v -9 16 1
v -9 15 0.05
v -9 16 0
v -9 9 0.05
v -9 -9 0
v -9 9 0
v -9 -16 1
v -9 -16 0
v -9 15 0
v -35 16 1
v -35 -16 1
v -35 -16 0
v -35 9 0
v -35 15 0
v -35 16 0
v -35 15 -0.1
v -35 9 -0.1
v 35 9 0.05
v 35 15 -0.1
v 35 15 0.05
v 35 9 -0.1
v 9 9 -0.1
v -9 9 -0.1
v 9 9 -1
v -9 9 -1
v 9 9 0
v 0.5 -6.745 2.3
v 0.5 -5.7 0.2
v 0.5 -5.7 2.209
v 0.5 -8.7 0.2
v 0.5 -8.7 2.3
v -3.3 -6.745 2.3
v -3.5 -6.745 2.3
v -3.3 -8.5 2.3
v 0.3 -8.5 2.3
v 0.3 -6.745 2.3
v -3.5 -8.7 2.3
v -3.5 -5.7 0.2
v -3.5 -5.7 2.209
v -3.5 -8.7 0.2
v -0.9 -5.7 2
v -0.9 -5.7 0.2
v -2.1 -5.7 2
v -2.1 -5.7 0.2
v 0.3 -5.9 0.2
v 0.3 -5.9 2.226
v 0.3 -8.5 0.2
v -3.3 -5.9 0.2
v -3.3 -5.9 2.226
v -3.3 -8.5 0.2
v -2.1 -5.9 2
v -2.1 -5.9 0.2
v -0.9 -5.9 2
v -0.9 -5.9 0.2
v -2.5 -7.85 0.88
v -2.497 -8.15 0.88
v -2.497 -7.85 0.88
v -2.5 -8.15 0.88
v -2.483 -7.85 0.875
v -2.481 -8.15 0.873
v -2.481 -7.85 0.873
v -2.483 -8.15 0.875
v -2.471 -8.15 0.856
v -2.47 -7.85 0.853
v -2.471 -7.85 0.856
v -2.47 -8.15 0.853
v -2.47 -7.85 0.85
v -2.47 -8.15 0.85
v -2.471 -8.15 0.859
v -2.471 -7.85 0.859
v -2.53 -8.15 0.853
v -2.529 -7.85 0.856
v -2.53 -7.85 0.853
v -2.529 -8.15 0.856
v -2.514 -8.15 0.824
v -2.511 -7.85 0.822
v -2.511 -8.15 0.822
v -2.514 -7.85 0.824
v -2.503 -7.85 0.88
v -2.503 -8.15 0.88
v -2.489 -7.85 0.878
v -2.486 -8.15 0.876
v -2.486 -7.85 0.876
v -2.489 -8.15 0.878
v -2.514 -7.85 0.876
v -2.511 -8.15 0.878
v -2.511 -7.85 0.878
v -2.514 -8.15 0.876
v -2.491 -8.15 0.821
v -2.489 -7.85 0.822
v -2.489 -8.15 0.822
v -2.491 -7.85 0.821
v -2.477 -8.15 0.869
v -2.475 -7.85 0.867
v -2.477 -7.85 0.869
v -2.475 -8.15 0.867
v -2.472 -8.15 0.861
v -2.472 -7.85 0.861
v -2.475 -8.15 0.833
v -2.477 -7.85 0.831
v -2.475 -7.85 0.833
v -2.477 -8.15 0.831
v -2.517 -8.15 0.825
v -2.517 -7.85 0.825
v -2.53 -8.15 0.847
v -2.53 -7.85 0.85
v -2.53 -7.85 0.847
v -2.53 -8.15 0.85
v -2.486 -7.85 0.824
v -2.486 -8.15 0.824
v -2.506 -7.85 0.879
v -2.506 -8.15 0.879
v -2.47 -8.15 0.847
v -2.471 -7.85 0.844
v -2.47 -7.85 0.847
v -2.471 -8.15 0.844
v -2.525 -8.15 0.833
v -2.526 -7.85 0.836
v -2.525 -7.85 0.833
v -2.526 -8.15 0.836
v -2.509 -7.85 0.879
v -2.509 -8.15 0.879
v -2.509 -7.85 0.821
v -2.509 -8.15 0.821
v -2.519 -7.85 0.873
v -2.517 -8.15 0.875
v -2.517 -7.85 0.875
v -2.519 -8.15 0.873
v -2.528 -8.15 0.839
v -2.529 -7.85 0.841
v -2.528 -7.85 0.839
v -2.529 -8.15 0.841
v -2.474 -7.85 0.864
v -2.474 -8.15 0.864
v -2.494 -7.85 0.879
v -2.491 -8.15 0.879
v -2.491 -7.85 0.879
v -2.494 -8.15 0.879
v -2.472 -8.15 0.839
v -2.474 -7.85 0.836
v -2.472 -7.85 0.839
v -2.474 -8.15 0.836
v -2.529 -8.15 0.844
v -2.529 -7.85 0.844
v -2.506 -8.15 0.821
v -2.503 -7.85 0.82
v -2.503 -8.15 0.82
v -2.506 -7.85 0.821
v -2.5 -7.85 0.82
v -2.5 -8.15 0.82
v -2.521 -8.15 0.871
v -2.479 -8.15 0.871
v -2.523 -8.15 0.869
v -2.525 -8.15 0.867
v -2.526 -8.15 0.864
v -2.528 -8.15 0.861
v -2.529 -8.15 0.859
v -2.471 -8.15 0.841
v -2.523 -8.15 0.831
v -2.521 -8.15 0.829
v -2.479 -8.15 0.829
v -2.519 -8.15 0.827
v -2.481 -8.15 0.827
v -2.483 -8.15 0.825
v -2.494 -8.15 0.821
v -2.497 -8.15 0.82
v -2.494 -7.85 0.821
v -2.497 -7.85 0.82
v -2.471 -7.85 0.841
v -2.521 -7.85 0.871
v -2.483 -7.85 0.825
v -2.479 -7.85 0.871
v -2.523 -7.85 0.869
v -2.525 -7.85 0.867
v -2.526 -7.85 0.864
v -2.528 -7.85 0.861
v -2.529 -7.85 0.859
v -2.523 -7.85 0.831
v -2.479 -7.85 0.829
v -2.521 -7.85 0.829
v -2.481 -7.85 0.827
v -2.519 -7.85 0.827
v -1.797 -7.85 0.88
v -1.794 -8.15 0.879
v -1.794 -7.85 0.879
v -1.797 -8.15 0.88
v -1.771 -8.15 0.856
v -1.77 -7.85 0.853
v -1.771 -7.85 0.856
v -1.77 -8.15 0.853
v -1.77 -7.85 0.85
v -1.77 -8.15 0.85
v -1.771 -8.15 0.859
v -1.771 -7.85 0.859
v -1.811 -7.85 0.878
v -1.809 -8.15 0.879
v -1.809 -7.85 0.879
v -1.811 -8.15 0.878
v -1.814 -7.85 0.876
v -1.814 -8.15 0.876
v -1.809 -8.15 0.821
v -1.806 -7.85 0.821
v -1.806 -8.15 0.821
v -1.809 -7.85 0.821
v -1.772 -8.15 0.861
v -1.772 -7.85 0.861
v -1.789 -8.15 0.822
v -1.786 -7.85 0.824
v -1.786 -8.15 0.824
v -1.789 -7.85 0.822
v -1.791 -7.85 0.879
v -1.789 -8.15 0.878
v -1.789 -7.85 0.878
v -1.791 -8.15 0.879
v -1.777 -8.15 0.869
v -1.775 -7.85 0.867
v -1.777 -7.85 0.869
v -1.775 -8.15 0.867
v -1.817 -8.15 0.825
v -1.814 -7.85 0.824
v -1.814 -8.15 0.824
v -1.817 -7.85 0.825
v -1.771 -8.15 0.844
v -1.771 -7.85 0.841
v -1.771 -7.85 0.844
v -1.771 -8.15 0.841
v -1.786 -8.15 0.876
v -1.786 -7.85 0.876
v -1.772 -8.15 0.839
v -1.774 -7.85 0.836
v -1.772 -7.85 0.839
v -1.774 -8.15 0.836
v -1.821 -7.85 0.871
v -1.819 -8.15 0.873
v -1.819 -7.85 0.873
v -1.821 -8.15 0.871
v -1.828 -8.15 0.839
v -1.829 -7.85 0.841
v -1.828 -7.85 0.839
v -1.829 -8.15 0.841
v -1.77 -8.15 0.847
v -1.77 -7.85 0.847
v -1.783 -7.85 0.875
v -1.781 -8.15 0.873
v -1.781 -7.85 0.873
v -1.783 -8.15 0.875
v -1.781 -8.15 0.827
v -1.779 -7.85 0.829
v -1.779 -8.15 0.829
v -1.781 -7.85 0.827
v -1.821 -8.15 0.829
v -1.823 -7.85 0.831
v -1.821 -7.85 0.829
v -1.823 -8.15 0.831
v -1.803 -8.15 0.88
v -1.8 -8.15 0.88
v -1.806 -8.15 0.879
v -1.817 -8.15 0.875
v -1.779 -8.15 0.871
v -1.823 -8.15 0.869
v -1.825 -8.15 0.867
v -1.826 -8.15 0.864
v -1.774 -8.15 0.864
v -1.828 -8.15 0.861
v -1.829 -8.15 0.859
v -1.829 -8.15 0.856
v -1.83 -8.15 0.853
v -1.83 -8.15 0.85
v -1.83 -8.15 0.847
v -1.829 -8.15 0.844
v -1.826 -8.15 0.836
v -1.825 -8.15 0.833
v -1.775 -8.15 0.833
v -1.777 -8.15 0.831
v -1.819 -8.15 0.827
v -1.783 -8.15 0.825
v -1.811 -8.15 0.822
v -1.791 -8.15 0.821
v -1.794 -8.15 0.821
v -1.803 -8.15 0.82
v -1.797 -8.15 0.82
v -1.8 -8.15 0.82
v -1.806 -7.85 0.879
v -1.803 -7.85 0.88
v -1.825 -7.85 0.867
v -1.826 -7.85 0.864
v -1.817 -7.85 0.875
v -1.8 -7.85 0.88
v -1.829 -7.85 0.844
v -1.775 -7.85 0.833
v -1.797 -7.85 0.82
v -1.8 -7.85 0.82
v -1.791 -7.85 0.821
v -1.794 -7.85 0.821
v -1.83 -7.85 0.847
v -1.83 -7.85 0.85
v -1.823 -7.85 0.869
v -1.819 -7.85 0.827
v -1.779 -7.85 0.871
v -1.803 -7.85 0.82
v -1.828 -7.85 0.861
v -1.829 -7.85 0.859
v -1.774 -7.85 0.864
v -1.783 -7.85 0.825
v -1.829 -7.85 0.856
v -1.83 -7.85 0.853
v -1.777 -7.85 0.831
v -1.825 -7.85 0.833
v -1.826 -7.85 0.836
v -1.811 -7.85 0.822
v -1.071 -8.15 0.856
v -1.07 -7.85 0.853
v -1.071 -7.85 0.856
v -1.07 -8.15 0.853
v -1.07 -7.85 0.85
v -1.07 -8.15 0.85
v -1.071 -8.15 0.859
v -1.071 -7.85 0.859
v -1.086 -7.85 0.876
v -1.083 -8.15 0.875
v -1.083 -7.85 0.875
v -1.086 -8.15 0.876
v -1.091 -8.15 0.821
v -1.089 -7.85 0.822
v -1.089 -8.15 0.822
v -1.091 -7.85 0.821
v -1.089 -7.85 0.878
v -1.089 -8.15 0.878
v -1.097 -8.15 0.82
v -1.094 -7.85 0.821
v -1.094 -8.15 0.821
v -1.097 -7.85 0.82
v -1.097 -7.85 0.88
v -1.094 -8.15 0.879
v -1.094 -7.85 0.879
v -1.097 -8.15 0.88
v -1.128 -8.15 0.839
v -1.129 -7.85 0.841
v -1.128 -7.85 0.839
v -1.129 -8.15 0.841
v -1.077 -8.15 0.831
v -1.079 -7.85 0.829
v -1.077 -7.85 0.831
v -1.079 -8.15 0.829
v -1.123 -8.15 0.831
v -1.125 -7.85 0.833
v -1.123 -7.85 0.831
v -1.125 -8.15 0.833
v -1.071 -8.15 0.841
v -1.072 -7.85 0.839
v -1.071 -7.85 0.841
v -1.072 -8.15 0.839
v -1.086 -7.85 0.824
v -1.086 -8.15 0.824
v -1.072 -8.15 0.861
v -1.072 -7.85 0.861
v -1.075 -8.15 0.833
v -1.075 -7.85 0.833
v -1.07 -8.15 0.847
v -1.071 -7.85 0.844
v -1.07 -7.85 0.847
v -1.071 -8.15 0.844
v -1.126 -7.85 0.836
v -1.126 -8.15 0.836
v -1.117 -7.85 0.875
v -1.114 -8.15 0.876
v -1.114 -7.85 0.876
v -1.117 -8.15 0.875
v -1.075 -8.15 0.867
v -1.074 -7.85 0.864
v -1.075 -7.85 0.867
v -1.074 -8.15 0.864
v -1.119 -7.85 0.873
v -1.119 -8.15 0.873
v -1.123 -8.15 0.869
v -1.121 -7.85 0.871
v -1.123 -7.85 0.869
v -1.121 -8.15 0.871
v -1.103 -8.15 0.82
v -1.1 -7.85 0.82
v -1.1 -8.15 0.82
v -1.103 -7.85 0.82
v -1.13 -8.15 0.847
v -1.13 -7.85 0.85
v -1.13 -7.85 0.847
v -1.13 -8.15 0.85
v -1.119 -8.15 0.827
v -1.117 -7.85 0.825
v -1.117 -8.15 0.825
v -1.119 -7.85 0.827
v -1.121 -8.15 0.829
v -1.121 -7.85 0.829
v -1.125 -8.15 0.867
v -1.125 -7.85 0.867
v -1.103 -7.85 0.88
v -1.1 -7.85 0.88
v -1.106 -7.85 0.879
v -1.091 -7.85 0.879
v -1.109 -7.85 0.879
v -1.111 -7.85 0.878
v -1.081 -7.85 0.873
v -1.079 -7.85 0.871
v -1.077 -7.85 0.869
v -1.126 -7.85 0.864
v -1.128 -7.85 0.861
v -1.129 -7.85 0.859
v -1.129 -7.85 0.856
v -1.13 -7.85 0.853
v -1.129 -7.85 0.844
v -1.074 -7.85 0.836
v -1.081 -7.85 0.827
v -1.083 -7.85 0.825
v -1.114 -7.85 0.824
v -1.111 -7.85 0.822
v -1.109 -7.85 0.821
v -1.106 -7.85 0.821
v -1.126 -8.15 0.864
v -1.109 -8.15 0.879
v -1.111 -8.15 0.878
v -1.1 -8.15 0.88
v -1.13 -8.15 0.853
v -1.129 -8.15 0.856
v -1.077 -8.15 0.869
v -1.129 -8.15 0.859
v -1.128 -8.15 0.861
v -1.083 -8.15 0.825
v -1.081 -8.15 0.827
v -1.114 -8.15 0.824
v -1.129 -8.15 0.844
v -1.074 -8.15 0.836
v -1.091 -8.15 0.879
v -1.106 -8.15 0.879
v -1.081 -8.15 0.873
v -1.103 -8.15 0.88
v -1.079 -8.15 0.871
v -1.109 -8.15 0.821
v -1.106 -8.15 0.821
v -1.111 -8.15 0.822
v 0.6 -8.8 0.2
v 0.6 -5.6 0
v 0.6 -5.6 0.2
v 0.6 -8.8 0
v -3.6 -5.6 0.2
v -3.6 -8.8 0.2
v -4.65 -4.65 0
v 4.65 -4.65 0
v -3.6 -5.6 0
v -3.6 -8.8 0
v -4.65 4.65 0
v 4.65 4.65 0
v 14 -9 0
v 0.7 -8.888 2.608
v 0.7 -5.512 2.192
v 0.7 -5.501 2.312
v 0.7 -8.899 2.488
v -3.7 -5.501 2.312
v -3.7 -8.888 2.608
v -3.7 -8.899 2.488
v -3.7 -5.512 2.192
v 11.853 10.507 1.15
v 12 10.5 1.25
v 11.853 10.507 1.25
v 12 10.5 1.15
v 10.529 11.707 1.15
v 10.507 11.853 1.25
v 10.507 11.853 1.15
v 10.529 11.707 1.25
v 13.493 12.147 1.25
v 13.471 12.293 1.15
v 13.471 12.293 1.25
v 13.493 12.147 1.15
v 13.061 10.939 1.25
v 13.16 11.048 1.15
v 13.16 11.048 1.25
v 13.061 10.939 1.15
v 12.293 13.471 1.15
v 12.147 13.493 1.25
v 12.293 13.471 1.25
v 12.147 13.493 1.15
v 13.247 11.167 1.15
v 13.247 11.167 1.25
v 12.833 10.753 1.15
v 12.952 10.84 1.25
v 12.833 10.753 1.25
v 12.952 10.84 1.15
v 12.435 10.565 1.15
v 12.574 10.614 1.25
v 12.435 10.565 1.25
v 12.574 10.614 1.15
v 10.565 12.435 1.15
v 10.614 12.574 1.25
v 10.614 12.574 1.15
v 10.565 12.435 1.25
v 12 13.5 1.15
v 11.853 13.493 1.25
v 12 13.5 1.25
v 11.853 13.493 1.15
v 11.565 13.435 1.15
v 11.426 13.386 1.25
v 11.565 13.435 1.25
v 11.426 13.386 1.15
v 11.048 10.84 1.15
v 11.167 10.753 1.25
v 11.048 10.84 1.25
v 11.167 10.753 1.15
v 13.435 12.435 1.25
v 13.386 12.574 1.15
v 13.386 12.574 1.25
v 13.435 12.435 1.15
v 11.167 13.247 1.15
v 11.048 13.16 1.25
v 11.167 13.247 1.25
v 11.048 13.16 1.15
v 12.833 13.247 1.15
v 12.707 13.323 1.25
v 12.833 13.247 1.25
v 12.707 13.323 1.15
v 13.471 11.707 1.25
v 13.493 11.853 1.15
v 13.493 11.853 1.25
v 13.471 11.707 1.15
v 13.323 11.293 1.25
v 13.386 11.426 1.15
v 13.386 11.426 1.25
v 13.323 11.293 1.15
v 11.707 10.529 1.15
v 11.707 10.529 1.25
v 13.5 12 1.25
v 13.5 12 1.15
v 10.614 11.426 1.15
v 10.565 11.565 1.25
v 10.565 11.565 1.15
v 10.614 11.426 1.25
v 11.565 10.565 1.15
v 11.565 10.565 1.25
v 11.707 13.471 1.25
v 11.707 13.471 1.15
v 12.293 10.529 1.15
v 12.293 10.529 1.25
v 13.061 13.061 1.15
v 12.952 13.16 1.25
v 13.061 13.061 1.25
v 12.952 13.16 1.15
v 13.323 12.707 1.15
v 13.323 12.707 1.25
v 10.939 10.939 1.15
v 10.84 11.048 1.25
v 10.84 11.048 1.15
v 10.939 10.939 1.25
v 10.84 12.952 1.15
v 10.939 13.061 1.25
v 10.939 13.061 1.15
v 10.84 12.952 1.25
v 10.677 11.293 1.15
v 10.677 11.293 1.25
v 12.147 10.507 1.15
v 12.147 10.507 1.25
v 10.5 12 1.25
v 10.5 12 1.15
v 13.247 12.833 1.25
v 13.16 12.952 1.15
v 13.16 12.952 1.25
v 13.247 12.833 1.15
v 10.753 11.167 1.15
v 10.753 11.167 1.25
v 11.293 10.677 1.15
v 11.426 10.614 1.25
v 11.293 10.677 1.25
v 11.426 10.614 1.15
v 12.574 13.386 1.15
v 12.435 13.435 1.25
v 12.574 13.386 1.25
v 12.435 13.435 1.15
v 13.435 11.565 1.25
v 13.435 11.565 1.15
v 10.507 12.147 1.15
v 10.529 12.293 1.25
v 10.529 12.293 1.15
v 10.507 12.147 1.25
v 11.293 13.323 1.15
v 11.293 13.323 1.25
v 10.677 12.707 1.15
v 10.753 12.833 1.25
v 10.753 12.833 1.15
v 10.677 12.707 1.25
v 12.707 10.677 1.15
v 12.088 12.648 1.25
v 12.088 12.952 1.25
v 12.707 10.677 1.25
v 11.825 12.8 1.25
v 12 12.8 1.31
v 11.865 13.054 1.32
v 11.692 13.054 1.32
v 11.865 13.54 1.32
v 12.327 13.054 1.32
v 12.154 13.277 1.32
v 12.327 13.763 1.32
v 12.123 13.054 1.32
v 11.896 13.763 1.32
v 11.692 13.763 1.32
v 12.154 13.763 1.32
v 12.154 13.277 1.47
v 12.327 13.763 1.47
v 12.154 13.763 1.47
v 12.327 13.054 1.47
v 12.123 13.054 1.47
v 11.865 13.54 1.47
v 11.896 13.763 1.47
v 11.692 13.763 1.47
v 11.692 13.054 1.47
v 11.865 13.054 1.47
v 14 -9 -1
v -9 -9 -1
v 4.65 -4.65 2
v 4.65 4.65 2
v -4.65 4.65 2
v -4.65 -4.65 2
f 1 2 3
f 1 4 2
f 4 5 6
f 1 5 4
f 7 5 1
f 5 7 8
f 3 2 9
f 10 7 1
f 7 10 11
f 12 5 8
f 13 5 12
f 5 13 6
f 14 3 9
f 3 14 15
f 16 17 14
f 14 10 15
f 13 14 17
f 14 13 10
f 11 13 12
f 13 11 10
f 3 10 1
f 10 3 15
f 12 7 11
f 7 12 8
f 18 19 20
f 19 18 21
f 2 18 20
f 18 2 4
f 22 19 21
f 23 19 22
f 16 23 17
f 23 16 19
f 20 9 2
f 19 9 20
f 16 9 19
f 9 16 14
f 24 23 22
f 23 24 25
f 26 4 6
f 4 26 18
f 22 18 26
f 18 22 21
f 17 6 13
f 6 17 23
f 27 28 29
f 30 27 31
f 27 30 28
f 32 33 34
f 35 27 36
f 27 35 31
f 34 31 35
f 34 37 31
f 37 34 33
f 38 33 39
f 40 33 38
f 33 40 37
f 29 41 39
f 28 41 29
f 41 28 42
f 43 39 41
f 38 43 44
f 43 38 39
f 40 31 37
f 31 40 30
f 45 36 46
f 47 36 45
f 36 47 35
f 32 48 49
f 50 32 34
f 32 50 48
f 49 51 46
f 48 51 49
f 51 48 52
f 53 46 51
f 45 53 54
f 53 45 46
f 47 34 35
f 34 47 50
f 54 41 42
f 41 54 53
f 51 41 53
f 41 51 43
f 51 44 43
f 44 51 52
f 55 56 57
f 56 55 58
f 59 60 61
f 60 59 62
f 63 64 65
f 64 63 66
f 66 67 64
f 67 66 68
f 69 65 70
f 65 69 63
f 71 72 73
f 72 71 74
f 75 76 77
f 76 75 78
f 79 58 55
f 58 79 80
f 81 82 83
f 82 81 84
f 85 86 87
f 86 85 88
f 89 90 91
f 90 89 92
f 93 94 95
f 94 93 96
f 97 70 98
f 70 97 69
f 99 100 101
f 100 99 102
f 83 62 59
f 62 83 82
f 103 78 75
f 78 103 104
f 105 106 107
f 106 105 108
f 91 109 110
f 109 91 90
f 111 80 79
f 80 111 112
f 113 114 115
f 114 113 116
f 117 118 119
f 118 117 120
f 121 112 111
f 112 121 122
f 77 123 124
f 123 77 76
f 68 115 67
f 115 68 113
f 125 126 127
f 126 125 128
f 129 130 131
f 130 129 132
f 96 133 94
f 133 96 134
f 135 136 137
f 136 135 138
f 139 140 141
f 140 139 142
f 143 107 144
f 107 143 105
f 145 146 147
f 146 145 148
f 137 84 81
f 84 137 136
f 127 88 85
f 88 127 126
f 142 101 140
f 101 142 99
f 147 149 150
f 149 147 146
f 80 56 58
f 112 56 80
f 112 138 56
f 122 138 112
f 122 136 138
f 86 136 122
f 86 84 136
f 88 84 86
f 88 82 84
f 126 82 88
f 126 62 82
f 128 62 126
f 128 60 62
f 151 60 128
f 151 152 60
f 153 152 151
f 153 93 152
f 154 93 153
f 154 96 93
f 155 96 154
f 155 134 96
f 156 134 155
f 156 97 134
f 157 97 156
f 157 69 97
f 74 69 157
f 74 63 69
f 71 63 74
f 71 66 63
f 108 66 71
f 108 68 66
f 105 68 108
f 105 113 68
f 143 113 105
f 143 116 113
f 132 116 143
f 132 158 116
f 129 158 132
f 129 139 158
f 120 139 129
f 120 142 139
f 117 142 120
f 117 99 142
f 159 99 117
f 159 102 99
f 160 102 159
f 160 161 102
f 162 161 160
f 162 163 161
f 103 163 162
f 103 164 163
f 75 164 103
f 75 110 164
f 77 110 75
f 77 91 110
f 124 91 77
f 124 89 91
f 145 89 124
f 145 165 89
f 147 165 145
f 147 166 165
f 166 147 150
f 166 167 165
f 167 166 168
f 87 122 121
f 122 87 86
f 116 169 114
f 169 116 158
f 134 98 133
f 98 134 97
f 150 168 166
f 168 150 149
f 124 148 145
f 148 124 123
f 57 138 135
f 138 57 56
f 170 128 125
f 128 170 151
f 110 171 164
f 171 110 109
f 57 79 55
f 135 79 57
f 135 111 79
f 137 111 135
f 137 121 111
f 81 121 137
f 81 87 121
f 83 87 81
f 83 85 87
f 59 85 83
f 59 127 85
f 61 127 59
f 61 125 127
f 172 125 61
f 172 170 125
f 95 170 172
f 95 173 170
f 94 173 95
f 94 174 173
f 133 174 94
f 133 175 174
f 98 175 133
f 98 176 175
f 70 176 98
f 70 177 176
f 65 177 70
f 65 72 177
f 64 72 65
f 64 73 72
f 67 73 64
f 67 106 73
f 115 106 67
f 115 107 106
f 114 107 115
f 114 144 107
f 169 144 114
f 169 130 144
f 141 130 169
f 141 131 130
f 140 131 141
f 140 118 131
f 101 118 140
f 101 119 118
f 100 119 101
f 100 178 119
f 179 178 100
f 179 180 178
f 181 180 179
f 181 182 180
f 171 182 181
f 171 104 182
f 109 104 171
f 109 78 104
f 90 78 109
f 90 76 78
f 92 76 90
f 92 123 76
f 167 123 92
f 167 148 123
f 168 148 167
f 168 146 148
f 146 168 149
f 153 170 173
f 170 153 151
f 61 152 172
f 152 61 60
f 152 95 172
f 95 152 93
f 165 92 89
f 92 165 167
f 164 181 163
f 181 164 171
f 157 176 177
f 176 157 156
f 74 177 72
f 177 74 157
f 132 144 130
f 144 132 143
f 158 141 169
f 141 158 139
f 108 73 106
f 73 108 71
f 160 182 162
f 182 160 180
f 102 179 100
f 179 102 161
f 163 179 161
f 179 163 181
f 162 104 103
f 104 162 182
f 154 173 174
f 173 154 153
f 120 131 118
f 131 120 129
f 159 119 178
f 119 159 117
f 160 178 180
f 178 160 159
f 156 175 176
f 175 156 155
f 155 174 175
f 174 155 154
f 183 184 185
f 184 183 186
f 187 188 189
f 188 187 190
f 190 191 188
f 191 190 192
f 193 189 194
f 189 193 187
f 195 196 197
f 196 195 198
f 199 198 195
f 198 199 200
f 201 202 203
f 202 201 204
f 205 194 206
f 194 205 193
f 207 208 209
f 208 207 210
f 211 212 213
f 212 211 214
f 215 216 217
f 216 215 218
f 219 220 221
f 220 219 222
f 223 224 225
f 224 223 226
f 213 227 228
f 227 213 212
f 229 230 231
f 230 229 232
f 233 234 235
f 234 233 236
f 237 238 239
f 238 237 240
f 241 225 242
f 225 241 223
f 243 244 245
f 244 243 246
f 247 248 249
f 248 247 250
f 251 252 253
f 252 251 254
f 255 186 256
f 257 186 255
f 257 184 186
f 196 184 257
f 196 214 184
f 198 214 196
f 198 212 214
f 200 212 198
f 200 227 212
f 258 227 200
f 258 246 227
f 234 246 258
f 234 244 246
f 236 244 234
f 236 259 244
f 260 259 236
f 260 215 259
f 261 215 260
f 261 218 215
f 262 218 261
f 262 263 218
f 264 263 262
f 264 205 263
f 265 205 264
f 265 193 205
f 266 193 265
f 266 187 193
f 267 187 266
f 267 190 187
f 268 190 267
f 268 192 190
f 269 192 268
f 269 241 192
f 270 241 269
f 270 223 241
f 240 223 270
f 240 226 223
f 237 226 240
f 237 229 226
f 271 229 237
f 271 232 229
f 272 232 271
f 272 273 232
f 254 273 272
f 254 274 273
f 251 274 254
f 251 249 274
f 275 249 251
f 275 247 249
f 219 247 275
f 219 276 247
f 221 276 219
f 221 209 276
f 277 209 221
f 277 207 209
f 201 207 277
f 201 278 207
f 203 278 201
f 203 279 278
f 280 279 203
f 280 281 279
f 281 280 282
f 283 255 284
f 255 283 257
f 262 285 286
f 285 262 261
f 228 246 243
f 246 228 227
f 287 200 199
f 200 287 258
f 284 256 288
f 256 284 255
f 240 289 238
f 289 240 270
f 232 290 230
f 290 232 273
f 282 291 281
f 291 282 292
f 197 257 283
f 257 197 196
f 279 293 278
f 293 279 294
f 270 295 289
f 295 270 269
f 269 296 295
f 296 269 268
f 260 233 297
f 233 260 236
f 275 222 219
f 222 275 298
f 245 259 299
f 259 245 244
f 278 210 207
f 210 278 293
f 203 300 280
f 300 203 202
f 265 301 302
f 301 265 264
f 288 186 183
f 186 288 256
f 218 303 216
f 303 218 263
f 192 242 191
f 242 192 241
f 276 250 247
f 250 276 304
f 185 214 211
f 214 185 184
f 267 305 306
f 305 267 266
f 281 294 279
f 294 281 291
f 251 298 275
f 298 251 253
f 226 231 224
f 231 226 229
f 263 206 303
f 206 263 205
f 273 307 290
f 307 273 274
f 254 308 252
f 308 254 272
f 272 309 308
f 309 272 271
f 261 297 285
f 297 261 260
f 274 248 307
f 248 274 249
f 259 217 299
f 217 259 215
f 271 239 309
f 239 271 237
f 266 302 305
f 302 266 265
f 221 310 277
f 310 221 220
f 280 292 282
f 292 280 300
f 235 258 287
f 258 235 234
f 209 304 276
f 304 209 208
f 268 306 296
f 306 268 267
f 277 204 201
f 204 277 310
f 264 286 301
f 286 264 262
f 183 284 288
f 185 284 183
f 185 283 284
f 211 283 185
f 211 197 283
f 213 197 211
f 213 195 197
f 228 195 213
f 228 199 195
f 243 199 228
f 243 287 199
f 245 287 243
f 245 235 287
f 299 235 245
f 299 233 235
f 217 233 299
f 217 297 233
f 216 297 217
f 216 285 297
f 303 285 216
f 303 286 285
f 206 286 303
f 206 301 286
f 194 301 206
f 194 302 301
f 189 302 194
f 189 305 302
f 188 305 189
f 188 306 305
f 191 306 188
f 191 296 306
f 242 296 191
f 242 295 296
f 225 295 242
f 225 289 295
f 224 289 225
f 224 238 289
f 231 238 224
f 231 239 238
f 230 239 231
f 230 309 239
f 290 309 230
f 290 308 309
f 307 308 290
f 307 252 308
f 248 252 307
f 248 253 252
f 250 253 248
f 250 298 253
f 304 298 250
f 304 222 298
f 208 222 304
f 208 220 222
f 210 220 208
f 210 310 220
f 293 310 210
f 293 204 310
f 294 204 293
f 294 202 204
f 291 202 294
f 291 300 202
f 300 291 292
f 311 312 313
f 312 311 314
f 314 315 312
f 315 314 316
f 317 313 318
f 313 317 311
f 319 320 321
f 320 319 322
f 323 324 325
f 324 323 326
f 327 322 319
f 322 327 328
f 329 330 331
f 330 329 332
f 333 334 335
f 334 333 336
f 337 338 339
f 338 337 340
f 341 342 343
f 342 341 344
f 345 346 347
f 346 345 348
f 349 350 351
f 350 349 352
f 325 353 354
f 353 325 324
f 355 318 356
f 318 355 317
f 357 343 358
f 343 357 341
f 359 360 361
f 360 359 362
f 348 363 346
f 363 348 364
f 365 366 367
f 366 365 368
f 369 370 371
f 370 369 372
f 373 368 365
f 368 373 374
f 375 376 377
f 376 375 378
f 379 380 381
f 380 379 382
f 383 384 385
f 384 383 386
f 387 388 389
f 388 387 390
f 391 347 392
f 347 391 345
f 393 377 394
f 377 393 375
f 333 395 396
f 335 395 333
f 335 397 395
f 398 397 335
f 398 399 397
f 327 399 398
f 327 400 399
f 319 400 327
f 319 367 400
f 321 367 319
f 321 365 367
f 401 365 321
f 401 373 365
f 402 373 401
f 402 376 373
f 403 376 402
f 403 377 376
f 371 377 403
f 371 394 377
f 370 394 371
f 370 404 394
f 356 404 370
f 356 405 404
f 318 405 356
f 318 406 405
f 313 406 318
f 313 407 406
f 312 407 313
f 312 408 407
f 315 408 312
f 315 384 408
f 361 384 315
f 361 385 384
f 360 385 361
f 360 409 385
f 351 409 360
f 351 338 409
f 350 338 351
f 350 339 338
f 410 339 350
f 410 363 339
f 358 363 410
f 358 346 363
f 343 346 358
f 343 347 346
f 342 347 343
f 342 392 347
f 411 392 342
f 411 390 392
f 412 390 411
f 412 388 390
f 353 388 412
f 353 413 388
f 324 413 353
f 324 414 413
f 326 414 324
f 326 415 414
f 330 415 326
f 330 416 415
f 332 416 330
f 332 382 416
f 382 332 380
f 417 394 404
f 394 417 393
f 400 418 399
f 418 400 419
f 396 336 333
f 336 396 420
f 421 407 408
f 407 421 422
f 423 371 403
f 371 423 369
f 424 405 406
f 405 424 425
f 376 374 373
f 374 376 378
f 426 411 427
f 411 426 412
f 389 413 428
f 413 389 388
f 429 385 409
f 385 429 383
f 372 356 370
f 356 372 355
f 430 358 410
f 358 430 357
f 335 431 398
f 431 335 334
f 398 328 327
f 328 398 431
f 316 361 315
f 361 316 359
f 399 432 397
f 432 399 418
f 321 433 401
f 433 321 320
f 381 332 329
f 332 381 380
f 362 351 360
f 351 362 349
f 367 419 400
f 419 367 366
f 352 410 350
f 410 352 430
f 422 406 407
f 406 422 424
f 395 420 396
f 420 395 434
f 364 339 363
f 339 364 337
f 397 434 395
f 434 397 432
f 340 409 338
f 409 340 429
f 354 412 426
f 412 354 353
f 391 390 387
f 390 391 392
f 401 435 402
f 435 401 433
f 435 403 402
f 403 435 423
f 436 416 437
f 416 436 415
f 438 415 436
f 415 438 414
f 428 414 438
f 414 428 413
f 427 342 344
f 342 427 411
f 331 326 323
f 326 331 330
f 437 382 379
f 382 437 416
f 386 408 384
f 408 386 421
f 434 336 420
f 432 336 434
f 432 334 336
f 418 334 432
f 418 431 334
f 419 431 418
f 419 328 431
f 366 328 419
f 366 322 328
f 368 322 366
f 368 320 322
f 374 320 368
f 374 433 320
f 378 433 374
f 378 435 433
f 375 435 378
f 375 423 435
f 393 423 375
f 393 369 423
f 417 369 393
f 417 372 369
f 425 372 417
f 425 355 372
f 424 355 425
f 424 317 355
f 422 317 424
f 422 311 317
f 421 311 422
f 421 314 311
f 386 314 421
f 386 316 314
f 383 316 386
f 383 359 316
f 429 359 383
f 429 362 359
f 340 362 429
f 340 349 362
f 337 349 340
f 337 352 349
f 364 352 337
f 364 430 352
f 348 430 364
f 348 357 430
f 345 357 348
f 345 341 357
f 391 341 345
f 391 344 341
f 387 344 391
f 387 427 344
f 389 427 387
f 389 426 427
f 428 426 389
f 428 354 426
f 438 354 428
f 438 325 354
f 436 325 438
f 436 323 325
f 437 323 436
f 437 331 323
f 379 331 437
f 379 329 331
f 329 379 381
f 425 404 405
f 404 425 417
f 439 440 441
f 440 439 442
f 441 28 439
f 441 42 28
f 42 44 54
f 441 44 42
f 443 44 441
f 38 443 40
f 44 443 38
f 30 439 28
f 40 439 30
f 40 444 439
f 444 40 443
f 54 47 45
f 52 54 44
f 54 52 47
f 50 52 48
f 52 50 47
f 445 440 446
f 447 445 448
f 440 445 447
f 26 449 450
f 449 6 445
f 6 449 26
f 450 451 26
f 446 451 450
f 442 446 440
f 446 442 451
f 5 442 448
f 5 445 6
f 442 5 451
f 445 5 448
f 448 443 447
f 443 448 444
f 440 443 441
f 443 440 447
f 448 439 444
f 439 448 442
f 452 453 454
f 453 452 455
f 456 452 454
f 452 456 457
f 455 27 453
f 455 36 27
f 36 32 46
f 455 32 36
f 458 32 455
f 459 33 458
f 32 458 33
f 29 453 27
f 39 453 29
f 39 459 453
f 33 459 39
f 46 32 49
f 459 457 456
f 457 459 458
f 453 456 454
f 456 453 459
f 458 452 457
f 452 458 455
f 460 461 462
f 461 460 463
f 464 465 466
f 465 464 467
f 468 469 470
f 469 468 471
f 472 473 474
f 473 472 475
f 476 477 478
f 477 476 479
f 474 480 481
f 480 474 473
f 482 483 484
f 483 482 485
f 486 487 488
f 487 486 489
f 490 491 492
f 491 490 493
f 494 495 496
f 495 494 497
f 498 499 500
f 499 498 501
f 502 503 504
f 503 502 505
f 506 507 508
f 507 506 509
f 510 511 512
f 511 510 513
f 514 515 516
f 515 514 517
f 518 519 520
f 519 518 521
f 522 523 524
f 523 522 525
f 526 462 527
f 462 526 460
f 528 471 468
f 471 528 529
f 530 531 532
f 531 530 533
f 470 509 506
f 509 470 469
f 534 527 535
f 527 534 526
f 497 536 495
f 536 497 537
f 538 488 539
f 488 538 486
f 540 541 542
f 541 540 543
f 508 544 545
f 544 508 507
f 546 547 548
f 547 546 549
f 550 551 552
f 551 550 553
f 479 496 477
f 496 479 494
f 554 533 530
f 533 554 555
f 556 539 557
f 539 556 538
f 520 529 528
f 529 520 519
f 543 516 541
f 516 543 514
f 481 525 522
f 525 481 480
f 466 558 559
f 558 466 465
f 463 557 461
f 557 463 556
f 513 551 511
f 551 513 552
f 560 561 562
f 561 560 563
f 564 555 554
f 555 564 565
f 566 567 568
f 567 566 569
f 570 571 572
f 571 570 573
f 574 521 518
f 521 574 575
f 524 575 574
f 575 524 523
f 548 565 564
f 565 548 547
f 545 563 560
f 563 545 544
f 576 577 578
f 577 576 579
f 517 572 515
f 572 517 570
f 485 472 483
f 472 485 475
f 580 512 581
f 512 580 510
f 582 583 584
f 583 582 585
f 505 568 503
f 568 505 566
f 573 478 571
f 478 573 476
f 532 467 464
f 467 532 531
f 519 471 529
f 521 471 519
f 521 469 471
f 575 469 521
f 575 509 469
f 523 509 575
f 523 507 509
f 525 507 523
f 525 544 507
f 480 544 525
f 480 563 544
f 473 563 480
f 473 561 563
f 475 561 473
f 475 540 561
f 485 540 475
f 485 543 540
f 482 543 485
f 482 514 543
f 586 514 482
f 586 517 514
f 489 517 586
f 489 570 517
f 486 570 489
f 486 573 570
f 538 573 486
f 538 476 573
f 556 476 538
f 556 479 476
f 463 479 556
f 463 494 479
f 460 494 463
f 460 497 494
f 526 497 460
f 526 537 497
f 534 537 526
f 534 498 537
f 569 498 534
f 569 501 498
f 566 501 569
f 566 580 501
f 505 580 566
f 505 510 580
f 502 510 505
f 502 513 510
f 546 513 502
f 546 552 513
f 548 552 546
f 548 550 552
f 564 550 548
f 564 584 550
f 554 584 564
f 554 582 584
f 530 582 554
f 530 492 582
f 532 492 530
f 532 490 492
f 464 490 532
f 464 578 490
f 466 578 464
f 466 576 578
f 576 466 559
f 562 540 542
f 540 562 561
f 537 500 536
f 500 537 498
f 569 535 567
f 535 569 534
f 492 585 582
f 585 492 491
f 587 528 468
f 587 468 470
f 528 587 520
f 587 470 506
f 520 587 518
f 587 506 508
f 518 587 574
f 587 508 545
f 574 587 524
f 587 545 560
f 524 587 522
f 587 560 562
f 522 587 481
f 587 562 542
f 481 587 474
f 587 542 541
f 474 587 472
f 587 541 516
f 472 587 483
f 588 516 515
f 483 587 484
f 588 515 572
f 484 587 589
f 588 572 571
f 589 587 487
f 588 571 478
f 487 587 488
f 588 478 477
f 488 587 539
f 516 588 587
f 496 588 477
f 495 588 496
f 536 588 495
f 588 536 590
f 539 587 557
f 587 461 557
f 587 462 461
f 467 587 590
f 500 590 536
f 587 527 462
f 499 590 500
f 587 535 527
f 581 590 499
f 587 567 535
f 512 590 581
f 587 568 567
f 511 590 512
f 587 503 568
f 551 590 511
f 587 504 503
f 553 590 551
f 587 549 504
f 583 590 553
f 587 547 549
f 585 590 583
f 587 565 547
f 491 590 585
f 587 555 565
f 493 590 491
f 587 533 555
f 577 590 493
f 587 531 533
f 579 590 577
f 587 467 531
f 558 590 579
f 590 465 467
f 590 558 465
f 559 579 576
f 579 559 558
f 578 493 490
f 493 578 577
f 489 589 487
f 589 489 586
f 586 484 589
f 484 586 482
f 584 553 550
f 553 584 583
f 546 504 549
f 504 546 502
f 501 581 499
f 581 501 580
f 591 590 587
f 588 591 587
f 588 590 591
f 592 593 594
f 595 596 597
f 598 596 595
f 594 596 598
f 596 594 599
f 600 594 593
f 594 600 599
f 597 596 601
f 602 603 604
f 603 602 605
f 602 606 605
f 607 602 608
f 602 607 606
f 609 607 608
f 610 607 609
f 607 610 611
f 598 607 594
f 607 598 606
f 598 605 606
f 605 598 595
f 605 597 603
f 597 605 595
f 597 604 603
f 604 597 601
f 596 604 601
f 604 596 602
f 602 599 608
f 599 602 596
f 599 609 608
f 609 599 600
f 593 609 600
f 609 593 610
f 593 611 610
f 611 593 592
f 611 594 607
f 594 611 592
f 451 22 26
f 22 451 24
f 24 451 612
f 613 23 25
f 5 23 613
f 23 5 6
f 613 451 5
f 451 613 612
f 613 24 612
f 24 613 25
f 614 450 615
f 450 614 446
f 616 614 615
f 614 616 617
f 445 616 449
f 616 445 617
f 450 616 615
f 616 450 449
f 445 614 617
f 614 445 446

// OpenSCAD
// =============================================================================================================
// MASJID NURUL FALAH SUKATANI — STEP 12: FEMALE WUDHU & SANITATION PAVILION
// Parametric Architectural CSG Model (OpenSCAD)
//
// STRICT CIVIL MANDATE: NORTH AT TOP (+Y AXIS)
// ENCLOSED FEMALE ABLUTION & SANITATION SUITE (SOUTH FLANK)
// =============================================================================================================

$fn = 64;
poly_site = [ [-9, -9], [14, -9], [9, 9], [-9, 9] ];

module surroundings() {
    color([0.22, 0.42, 0.24]) translate([-22, 0, 0.5]) cube([26, 32, 1.0], center = true);
    color([0.18, 0.20, 0.24]) translate([-35, 9, -0.10]) cube([70, 6.0, 0.15]);
    
}

module step_12_assembly() {
    surroundings();
    color([0.28, 0.52, 0.30]) translate([0, 0, -1.0]) linear_extrude(height = 1.0) polygon(poly_site);
    
    // Mosque Hall Outlines
    color([0.88, 0.88, 0.85, 0.5]) translate([0, 0, 1.0]) cube([9.3, 9.3, 2.0], center = true);

    // Female Wudhu Pavilion on South Flank (4.2m x 3.2m)
    translate([-1.5, -7.2, 0]) {
        color([0.65, 0.70, 0.75]) translate([0, 0, 0.10]) cube([4.2, 3.2, 0.20], center = true);
        // Full Privacy Enclosure Walls
        color([0.85, 0.85, 0.82]) {
            difference() {
                translate([0, 0, 1.2]) cube([4.0, 3.0, 2.2], center = true);
                translate([0, 0, 1.2]) cube([3.6, 2.6, 2.3], center = true);
                // Private North Entry to Female Prayer Section
                translate([0, 1.5, 1.0]) cube([1.2, 0.5, 2.0], center = true);
            }
        }
        // Faucets & Seats Inside
        color([0.90, 0.95, 1.0]) {
            for (x = [-1.0 : 0.7 : 1.0]) {
                translate([x, -0.8, 0.85]) rotate([90, 0, 0]) cylinder(h = 0.3, r = 0.03, center = true);
            }
        }
        // Canopy Roof
        color([0.22, 0.24, 0.28]) translate([0, 0, 2.4]) rotate([-5, 0, 0]) cube([4.4, 3.4, 0.12], center = true);
    }

    // Compass Rose
    translate([12, 12, 1.2]) {
        color([0.0, 0.75, 0.95]) cylinder(h = 0.10, r = 1.5, center = true);
        color([0.95, 0.2, 0.2]) translate([0, 0.8, 0.05]) rotate([0, 0, 180]) cylinder(h = 0.12, r1 = 0.35, r2 = 0.0, $fn = 3, center = true);
        color([0.9, 0.9, 0.9]) translate([0, 1.4, 0.12]) linear_extrude(height = 0.15) text("N", size = 0.7, font = "Liberation Sans:style=Bold", halign = "center", valign = "center");
    }
}

step_12_assembly();
